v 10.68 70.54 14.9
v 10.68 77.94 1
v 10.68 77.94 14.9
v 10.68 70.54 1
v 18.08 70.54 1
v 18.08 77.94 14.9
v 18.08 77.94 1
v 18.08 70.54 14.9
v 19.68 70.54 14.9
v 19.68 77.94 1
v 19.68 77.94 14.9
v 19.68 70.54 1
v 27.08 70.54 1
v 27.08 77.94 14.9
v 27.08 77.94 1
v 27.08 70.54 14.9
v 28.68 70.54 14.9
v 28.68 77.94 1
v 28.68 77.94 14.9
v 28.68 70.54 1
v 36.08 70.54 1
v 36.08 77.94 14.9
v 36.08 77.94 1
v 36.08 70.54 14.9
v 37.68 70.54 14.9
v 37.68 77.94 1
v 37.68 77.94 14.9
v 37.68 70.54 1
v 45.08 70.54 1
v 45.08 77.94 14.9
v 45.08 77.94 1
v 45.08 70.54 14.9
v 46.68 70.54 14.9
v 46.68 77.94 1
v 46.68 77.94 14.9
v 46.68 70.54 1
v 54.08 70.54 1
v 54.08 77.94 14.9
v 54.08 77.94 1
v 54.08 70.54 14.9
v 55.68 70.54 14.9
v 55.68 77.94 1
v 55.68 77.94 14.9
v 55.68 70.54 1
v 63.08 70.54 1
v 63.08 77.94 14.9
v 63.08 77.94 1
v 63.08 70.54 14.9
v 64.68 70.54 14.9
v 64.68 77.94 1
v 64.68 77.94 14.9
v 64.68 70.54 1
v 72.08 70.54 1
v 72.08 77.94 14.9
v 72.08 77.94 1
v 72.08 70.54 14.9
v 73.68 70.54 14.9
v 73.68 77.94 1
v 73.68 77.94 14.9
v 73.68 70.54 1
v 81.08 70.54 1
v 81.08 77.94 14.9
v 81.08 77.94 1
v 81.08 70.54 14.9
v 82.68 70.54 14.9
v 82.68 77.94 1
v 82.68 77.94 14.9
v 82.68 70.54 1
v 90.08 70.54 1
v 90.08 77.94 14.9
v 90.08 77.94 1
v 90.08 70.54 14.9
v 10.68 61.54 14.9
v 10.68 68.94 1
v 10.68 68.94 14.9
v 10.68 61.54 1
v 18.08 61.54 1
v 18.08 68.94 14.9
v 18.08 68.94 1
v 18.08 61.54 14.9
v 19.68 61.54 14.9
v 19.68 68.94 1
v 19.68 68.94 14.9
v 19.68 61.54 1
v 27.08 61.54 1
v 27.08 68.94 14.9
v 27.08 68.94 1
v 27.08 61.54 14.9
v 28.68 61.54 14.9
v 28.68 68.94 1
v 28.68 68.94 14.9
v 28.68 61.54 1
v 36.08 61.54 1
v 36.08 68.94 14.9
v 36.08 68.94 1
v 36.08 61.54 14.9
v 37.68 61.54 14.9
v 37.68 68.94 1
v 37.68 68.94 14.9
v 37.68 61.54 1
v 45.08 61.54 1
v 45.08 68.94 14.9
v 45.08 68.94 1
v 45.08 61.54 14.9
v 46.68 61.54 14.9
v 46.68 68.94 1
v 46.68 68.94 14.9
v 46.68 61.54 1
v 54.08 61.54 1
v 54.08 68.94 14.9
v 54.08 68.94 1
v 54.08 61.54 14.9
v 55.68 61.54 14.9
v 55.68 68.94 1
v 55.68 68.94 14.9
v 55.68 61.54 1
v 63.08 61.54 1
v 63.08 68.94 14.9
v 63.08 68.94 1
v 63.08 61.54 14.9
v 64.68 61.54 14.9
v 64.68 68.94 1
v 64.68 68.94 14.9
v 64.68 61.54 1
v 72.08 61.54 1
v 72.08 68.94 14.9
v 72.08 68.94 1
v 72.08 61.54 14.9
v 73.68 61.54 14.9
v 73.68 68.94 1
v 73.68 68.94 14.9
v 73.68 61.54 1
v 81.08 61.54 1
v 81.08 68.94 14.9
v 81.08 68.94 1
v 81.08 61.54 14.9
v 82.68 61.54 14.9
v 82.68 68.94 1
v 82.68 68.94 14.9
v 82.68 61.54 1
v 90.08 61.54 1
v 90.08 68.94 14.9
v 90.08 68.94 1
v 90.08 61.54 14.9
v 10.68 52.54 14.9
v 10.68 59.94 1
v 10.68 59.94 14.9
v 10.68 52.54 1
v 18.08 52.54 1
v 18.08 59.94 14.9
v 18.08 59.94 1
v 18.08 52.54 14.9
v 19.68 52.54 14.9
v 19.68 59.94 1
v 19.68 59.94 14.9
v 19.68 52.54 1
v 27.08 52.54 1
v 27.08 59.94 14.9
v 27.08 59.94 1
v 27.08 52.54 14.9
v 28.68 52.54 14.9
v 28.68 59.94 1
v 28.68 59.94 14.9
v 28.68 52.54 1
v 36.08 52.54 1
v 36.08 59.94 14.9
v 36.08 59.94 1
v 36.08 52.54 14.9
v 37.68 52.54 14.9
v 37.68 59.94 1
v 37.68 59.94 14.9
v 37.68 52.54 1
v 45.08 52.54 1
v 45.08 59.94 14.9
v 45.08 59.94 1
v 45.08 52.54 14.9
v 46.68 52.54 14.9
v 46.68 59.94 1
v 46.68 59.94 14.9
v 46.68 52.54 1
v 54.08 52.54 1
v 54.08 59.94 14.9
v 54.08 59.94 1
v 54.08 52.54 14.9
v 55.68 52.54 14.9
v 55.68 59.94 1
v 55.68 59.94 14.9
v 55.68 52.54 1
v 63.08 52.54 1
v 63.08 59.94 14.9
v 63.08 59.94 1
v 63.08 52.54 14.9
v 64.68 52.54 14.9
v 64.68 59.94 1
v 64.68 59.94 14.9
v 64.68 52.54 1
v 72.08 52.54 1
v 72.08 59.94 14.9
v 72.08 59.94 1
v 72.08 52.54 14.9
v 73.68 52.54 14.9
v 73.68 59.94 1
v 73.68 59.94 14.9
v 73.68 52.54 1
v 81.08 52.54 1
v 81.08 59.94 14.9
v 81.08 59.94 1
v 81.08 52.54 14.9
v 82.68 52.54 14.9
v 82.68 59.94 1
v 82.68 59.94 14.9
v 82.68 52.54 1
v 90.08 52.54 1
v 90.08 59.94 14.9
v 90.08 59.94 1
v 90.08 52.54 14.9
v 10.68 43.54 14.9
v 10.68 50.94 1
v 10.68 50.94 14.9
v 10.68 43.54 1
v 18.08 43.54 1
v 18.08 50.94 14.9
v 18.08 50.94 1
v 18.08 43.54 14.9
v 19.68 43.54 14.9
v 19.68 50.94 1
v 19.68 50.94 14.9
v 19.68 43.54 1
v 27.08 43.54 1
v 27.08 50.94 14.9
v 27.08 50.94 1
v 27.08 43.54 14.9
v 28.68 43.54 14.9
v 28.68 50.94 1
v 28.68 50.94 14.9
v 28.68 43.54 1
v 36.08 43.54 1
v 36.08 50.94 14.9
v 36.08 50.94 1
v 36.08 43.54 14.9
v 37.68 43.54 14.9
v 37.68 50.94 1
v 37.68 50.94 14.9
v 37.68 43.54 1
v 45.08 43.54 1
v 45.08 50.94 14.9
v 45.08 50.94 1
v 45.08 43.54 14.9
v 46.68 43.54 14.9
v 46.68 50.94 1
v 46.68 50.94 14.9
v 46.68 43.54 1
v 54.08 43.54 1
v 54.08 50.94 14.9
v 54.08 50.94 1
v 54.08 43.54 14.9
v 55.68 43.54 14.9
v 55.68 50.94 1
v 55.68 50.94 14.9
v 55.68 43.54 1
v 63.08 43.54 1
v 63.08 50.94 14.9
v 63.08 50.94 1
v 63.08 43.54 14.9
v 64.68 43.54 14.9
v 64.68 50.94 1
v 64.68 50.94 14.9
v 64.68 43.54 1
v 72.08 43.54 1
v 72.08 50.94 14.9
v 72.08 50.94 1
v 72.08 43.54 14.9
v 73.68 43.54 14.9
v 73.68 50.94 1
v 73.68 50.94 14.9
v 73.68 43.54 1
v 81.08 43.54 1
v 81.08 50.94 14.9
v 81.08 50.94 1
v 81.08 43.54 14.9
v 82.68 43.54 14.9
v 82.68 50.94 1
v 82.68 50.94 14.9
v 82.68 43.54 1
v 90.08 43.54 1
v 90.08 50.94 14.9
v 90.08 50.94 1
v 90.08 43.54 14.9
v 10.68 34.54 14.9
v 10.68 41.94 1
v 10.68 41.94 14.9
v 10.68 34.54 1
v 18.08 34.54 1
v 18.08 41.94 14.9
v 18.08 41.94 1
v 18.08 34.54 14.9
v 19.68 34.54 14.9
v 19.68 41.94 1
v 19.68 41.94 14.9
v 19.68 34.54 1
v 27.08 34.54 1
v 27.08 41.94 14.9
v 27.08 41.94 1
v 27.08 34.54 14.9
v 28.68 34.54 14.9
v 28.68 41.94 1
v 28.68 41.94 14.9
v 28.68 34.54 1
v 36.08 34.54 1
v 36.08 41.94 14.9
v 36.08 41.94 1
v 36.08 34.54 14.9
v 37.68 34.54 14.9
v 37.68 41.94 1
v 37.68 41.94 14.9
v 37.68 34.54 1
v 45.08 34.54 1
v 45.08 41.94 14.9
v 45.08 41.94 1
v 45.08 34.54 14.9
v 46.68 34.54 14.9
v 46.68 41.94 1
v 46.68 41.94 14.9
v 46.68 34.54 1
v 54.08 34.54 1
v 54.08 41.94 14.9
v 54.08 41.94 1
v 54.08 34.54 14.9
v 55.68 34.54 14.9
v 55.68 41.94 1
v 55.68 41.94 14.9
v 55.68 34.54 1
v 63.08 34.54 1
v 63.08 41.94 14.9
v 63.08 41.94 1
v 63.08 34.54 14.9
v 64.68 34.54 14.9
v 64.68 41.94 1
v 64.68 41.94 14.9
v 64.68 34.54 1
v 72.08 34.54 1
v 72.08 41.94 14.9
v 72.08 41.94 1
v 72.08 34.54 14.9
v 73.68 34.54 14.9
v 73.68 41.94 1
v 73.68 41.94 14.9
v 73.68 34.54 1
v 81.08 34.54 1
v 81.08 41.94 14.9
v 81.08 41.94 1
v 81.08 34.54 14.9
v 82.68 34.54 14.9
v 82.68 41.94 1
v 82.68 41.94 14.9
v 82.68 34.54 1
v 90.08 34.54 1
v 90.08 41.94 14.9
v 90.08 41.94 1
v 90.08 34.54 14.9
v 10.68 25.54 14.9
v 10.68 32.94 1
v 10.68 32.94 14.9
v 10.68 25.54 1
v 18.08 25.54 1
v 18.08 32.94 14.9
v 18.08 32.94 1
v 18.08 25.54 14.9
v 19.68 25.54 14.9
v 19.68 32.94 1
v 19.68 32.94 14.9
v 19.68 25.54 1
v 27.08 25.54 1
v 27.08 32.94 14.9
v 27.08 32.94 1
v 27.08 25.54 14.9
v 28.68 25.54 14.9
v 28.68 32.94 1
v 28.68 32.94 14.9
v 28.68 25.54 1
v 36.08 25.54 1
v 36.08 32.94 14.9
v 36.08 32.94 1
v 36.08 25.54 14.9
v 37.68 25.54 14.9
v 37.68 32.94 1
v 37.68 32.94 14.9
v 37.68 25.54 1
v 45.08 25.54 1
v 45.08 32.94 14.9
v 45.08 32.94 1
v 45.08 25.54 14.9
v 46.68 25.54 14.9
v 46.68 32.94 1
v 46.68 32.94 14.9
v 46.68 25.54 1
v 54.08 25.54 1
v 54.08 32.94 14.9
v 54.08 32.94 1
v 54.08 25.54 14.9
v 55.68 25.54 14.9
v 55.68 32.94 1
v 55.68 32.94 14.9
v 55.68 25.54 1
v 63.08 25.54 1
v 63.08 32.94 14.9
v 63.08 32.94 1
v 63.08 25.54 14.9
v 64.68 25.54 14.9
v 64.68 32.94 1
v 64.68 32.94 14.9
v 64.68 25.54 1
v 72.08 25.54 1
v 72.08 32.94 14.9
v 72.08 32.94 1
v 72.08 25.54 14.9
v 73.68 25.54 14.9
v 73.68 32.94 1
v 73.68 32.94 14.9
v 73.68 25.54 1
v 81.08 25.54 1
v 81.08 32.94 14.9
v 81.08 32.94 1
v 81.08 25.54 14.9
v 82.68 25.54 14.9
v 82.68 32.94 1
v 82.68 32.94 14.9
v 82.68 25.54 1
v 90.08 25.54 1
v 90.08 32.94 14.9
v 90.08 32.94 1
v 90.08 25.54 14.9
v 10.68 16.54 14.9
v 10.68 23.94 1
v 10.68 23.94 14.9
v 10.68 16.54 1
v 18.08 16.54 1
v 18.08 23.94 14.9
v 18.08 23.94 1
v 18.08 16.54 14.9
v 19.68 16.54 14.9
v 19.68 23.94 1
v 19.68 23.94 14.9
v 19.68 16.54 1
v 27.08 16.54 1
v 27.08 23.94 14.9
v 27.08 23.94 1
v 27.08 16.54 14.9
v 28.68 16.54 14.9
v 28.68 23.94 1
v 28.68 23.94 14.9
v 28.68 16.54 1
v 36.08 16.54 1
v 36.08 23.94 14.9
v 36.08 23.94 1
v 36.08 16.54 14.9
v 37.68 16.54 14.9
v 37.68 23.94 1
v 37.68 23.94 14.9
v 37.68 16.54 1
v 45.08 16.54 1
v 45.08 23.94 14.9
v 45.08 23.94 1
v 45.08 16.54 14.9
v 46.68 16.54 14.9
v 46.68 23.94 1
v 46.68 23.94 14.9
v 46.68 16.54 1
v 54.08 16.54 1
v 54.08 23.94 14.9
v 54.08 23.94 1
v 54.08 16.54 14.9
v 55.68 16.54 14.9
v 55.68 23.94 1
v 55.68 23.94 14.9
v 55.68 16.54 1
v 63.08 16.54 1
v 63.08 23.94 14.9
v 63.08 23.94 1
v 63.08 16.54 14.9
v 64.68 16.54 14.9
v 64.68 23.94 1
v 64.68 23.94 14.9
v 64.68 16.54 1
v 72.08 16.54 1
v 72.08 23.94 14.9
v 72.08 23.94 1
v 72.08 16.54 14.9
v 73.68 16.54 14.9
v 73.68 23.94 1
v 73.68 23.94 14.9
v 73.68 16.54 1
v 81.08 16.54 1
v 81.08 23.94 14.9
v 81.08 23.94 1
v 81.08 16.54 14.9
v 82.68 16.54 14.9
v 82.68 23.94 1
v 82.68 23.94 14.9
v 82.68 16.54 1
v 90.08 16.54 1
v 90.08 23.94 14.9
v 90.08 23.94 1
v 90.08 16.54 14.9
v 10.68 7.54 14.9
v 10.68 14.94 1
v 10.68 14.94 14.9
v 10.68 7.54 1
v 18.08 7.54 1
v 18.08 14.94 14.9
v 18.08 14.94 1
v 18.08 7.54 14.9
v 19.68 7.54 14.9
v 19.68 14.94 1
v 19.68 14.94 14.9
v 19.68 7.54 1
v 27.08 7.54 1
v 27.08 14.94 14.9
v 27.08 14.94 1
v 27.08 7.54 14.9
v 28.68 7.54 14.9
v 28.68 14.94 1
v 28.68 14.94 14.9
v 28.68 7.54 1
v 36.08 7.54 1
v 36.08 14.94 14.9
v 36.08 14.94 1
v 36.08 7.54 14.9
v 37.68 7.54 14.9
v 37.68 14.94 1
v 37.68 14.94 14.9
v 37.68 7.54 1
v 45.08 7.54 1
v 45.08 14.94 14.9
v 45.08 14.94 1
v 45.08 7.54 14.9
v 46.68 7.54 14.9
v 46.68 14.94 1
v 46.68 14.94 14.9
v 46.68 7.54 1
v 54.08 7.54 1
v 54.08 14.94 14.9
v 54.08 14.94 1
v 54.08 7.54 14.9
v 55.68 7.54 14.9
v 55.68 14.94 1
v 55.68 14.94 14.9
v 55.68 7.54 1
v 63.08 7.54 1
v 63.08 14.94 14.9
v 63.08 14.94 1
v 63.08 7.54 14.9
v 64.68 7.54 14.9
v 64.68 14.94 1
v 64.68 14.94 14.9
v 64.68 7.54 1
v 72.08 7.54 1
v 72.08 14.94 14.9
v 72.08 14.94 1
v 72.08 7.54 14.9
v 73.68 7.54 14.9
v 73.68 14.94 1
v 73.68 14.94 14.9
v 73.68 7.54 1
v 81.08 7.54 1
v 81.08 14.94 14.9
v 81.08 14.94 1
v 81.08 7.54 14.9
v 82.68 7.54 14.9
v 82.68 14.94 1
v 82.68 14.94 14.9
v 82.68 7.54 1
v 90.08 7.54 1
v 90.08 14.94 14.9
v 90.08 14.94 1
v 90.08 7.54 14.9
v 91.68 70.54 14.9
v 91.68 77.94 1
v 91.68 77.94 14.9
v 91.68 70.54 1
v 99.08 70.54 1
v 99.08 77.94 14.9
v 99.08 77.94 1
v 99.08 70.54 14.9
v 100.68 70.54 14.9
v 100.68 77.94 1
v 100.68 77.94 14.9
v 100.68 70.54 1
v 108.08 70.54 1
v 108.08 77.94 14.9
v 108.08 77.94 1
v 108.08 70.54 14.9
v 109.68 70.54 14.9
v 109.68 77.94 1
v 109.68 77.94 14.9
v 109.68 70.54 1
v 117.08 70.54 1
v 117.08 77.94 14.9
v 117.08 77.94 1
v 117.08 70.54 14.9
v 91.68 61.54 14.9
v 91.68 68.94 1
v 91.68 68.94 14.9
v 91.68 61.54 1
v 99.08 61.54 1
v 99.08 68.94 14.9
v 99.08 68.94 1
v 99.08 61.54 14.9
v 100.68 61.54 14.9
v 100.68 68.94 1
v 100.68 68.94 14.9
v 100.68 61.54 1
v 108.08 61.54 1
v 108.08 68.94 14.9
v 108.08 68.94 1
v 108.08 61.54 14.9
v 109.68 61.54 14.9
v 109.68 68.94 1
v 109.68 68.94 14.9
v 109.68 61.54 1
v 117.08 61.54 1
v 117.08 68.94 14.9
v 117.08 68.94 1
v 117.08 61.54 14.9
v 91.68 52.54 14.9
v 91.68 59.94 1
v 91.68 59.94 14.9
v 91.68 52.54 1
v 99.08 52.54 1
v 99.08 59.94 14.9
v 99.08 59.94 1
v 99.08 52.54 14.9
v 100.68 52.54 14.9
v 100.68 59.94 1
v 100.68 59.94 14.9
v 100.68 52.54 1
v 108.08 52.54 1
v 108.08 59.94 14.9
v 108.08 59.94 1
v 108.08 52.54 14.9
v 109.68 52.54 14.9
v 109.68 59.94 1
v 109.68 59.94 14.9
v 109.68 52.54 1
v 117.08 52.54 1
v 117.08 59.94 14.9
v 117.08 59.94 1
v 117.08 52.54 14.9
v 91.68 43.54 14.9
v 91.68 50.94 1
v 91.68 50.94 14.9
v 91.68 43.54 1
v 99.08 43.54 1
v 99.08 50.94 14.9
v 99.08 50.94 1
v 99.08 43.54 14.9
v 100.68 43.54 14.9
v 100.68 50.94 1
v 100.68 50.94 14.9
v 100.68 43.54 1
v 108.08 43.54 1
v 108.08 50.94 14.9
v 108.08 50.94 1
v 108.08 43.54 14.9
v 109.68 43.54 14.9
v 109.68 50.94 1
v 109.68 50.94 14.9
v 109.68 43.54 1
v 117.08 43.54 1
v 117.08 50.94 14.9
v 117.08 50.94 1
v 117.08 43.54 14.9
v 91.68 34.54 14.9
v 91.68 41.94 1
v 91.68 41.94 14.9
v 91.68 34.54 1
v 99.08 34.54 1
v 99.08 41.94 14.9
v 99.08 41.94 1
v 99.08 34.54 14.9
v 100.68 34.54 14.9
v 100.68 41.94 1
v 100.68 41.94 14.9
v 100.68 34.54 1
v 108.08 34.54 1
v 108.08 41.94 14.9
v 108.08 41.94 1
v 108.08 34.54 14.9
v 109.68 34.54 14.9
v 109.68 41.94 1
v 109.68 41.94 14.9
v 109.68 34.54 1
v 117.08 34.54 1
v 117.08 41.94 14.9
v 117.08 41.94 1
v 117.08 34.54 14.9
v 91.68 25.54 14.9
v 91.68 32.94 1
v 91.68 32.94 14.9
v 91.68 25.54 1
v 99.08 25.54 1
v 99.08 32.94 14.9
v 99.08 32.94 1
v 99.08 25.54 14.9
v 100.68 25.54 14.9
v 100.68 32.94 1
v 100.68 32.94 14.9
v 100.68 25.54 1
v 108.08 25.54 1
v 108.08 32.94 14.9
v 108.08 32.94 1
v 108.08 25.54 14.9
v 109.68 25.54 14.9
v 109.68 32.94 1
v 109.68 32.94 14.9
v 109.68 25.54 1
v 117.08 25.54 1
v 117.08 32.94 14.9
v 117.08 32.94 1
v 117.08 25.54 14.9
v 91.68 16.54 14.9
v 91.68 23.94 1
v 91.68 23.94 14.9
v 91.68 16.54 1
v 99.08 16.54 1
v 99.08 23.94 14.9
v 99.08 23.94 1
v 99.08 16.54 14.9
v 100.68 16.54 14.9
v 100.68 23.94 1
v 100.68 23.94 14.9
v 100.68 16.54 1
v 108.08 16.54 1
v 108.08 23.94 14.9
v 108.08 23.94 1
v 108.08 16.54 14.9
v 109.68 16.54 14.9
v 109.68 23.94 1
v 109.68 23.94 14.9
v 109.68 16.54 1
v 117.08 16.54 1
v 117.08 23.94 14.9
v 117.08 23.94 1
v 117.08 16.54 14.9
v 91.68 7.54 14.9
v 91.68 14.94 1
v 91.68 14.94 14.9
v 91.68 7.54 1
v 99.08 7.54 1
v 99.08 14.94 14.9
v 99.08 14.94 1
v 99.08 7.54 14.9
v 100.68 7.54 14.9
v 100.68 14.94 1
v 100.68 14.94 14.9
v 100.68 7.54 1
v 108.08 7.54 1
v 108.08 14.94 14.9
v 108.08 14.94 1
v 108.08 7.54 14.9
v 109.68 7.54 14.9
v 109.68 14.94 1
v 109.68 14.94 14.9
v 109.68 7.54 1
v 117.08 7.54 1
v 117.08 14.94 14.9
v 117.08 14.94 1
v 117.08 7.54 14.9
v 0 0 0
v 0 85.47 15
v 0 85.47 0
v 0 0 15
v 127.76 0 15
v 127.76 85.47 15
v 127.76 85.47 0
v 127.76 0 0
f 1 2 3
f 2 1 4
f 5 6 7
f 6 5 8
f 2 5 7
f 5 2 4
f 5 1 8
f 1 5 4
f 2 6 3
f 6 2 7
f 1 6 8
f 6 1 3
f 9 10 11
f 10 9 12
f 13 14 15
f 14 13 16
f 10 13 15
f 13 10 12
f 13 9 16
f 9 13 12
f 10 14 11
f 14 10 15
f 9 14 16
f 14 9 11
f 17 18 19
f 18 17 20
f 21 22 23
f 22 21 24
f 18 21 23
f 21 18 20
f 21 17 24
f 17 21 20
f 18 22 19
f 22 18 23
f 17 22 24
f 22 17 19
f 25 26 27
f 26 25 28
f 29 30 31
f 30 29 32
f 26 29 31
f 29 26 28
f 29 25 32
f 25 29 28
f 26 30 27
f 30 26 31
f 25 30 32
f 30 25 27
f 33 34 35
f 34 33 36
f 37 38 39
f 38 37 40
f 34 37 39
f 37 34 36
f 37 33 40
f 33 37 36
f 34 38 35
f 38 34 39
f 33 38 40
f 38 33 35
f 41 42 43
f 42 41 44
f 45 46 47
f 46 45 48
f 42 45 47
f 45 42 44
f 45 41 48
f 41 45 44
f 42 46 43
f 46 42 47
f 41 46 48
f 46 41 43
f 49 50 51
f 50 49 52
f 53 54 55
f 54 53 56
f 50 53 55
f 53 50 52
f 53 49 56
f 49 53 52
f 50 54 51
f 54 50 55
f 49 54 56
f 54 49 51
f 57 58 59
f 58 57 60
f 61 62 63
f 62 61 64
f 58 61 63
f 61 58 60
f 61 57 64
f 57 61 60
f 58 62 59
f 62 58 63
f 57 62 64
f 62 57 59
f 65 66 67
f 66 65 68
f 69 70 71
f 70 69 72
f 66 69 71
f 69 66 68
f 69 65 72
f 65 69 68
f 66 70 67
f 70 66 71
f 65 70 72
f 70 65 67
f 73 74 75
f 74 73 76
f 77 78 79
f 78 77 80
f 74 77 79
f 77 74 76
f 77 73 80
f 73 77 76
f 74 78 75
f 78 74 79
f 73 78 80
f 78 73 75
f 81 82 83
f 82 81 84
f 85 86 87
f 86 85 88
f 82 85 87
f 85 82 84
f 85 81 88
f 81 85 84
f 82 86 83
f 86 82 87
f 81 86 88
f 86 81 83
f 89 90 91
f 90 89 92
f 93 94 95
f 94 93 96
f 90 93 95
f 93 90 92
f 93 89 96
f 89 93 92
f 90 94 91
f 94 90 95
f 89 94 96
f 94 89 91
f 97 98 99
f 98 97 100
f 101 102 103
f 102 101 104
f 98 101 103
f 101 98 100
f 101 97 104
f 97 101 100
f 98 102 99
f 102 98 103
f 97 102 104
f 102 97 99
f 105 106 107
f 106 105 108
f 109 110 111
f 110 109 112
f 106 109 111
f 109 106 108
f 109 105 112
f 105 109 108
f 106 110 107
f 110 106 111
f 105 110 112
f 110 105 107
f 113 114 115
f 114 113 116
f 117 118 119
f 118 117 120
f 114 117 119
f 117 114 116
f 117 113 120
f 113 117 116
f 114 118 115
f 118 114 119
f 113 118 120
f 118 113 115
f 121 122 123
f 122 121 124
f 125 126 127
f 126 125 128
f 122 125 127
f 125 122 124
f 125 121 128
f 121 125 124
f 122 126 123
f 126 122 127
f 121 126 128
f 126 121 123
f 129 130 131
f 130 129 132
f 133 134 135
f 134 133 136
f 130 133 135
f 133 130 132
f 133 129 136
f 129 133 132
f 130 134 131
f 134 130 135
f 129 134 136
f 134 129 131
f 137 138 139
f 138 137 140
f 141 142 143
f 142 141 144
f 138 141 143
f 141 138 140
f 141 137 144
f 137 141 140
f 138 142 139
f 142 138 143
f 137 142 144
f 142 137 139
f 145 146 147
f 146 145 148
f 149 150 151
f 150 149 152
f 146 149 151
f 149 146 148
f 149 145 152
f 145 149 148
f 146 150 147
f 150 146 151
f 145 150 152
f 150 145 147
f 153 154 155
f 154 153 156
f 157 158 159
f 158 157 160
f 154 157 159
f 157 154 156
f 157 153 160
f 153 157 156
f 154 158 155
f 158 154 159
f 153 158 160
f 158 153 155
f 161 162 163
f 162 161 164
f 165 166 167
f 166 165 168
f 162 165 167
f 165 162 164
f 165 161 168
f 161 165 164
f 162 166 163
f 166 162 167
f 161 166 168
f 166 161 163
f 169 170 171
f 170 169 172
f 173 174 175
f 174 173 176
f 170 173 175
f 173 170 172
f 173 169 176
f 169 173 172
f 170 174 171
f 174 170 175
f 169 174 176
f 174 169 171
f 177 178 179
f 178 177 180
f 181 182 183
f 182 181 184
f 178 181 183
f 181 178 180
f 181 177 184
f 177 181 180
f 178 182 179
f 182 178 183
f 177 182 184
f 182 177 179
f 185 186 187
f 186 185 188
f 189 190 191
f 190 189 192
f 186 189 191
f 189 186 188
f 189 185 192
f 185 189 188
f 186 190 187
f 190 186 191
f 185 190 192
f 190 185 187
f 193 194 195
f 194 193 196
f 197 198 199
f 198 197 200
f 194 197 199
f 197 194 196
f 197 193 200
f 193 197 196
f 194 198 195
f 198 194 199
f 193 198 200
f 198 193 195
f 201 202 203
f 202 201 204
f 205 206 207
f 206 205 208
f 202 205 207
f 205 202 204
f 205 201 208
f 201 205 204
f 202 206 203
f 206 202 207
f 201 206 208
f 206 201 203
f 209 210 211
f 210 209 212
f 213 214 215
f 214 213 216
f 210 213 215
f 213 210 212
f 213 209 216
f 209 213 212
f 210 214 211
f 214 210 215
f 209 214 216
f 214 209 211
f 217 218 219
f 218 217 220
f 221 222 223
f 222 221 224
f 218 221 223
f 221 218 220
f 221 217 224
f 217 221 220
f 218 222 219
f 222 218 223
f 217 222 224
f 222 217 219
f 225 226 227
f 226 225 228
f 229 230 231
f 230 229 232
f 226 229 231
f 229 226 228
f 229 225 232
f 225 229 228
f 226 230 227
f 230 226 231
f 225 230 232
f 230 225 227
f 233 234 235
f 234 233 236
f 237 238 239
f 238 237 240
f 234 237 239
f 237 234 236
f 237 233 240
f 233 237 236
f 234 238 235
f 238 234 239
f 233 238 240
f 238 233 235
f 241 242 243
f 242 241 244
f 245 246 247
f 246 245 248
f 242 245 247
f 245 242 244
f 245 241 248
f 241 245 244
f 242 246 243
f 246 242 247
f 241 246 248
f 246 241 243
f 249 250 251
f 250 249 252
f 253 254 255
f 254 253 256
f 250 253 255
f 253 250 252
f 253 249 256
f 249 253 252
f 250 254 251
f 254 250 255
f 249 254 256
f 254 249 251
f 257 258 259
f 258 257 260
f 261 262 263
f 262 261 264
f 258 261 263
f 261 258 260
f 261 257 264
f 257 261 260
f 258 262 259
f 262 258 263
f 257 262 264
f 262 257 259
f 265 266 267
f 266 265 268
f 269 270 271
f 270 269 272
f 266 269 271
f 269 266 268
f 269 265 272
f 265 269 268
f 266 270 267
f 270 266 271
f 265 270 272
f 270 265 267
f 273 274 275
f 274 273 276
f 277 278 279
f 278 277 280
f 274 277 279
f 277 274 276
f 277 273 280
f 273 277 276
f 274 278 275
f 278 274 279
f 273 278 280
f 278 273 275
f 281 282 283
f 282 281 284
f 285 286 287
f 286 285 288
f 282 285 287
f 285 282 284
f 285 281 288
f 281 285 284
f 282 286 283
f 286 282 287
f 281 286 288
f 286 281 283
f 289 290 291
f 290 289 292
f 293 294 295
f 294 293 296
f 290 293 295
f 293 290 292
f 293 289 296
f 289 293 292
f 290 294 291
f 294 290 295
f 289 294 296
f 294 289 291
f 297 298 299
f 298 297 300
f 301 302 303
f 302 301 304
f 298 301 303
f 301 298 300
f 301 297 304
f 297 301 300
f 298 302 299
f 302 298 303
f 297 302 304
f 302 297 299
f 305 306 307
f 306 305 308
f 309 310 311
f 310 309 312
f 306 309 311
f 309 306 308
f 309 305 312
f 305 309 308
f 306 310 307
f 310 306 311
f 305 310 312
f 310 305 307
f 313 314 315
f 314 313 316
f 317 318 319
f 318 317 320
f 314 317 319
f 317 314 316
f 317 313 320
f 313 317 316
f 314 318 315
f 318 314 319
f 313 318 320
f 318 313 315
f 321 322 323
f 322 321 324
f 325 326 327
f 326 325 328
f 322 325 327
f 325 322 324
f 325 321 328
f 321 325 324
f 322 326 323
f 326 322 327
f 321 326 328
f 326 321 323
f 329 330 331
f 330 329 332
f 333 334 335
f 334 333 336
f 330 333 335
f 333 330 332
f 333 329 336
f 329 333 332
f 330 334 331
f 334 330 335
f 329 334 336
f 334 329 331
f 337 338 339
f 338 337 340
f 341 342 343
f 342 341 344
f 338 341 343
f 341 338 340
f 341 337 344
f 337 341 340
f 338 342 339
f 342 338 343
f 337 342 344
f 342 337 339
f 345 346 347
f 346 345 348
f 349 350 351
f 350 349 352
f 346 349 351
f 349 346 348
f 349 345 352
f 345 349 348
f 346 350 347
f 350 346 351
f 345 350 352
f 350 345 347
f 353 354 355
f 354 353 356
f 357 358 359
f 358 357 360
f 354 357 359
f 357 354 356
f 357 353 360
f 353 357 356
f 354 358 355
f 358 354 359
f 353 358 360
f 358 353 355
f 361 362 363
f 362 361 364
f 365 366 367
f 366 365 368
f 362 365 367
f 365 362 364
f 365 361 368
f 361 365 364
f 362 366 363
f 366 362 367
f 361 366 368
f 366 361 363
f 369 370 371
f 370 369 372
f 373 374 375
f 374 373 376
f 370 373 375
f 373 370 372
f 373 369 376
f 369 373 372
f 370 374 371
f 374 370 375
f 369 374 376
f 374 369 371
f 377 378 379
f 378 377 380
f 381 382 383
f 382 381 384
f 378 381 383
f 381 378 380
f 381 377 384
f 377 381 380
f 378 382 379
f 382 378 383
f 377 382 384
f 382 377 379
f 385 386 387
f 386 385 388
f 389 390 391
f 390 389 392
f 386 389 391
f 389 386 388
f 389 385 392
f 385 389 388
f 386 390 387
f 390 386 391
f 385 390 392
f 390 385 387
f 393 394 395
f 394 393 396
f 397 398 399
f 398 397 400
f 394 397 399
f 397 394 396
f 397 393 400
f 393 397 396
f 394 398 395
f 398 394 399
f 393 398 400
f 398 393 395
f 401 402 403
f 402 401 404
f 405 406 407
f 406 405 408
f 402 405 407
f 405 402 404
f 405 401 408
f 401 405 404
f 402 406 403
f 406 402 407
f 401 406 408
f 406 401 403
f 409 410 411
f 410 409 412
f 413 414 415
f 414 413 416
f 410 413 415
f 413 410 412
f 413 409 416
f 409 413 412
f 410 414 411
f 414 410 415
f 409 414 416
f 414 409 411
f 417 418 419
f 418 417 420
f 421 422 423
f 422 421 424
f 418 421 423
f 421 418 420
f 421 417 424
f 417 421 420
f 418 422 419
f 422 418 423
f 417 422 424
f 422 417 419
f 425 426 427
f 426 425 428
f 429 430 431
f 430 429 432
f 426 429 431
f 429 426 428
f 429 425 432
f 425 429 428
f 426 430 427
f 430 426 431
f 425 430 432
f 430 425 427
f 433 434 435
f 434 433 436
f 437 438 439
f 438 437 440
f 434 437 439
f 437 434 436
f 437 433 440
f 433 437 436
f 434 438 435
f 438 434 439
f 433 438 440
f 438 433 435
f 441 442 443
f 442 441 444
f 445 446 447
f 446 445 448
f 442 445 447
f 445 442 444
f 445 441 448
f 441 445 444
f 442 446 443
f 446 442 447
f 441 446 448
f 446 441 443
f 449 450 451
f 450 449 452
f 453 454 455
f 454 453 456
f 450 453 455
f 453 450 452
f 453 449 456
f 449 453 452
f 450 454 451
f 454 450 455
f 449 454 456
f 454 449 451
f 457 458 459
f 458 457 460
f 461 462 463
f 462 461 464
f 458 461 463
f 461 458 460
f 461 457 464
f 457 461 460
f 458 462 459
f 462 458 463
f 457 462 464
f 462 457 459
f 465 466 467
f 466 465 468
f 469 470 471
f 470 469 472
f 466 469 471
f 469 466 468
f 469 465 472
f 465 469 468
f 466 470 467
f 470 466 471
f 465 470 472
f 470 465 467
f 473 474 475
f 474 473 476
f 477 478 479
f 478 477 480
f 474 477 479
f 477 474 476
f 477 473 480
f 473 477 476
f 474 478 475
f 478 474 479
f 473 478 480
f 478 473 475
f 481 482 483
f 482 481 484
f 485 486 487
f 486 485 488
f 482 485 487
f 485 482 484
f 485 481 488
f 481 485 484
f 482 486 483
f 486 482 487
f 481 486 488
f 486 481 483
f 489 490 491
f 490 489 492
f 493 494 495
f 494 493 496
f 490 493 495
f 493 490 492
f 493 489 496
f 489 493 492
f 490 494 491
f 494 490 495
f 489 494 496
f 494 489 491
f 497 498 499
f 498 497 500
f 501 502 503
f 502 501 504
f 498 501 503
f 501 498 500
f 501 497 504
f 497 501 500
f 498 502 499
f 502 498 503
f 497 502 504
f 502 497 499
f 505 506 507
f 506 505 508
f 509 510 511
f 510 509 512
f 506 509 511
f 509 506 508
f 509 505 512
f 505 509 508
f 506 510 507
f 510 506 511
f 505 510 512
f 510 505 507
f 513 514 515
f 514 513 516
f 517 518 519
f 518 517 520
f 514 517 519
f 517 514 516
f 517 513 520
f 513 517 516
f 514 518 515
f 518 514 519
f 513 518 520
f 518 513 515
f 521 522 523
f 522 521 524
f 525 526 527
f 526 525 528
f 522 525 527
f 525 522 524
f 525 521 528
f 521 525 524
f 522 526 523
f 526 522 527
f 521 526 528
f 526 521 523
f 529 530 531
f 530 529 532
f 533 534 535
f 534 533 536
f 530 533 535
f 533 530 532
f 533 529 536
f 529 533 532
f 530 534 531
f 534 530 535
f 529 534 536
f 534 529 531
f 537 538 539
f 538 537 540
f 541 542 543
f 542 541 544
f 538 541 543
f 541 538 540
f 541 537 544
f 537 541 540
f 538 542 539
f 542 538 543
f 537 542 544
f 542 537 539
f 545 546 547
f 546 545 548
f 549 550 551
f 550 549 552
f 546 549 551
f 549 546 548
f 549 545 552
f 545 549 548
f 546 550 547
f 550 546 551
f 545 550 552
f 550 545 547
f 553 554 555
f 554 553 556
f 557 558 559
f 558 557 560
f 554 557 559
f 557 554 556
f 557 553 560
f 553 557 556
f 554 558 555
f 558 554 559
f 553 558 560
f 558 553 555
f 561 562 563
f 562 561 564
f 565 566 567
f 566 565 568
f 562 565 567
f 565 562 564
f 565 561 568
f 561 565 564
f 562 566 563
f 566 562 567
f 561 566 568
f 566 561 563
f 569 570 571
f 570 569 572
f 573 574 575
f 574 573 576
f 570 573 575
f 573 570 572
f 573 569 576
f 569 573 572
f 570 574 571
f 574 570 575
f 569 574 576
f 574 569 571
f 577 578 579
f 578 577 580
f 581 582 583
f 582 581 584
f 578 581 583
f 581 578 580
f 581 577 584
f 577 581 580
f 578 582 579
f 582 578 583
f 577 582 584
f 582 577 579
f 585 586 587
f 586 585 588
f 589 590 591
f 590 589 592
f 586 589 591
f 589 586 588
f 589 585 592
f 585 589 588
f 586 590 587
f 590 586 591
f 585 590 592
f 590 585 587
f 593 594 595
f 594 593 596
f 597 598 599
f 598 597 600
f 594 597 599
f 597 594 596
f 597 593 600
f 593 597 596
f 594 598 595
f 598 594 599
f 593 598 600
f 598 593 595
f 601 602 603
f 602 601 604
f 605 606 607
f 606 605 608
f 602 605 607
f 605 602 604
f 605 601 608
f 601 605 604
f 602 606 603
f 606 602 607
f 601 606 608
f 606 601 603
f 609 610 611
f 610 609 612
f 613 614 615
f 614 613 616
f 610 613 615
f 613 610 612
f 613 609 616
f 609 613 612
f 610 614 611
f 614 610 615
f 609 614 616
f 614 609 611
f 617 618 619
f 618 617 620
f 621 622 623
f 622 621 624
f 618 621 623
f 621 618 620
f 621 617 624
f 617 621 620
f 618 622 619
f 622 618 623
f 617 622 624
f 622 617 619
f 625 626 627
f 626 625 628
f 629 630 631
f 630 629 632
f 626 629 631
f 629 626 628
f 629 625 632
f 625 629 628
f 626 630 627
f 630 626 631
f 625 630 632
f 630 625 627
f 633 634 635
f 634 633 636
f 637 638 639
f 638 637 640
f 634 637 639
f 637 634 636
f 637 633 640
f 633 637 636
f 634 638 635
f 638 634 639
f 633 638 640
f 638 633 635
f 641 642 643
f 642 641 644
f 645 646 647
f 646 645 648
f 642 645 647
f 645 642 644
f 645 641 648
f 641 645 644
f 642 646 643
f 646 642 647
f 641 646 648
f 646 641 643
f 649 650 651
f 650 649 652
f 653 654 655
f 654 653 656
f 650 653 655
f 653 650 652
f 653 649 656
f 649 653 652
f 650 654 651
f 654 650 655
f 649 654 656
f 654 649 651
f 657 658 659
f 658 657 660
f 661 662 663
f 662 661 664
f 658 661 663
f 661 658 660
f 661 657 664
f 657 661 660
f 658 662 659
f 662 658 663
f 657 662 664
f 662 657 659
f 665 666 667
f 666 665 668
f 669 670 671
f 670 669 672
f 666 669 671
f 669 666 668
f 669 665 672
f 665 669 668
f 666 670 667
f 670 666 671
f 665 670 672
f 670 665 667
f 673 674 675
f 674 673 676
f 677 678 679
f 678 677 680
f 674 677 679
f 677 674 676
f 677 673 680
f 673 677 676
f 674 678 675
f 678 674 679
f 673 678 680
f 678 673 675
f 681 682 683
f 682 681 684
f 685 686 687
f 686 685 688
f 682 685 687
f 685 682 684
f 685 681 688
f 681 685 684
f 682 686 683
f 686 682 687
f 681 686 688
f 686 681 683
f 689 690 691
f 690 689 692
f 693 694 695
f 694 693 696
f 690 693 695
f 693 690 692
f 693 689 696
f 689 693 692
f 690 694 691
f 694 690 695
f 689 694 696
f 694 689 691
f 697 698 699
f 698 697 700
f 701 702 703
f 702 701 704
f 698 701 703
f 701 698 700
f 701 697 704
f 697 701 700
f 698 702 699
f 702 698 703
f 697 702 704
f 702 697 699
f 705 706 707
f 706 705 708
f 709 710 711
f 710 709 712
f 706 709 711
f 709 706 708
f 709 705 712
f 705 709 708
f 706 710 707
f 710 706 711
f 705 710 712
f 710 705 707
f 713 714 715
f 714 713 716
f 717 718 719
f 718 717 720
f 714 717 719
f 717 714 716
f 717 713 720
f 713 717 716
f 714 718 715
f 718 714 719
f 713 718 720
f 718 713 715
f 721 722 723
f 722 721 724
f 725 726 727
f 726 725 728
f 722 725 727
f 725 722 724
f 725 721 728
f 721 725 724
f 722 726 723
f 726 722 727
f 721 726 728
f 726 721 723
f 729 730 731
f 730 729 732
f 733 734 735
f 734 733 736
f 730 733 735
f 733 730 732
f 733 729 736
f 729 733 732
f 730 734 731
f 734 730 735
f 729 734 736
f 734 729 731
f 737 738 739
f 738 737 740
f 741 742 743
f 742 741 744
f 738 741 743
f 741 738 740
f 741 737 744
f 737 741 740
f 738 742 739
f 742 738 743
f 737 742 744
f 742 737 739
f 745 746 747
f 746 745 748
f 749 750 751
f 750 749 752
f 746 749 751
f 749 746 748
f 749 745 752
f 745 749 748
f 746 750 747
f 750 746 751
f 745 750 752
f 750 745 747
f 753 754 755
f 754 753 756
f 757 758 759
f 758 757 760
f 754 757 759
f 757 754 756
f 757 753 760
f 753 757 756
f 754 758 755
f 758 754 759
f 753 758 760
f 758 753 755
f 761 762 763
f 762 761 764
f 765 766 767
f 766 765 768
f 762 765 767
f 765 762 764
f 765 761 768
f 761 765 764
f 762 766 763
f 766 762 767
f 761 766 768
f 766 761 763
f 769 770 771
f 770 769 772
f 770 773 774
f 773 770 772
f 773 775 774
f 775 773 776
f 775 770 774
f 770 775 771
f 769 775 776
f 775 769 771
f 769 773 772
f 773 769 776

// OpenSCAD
// ibidi 96 Square Well Flat Bottom Plate 300 µL
// loadName: ibidi_96_square_well_plate_300ul
// Auto-generated by labware_to_stl.py from Opentrons V2 labware definition

$fn = 8;

difference() {
    // ── Labware body ──────────────────────────────────────────────
    cube([127.7600, 85.4700, 15.0000]);

    // ── Well cutouts ──────────────────────────────────────────────
    // Well A1
    translate([14.3800, 74.2400, 1.0000]) union() {
        translate([-3.7000, -3.7000, 0.0000])
            cube([7.4000, 7.4000, 12.9000]);
        translate([-3.7000, -3.7000, 12.9000])
            cube([7.4000, 7.4000, 1]);
    }
    // Well A2
    translate([23.3800, 74.2400, 1.0000]) union() {
        translate([-3.7000, -3.7000, 0.0000])
            cube([7.4000, 7.4000, 12.9000]);
        translate([-3.7000, -3.7000, 12.9000])
            cube([7.4000, 7.4000, 1]);
    }
    // Well A3
    translate([32.3800, 74.2400, 1.0000]) union() {
        translate([-3.7000, -3.7000, 0.0000])
            cube([7.4000, 7.4000, 12.9000]);
        translate([-3.7000, -3.7000, 12.9000])
            cube([7.4000, 7.4000, 1]);
    }
    // Well A4
    translate([41.3800, 74.2400, 1.0000]) union() {
        translate([-3.7000, -3.7000, 0.0000])
            cube([7.4000, 7.4000, 12.9000]);
        translate([-3.7000, -3.7000, 12.9000])
            cube([7.4000, 7.4000, 1]);
    }
    // Well A5
    translate([50.3800, 74.2400, 1.0000]) union() {
        translate([-3.7000, -3.7000, 0.0000])
            cube([7.4000, 7.4000, 12.9000]);
        translate([-3.7000, -3.7000, 12.9000])
            cube([7.4000, 7.4000, 1]);
    }
    // Well A6
    translate([59.3800, 74.2400, 1.0000]) union() {
        translate([-3.7000, -3.7000, 0.0000])
            cube([7.4000, 7.4000, 12.9000]);
        translate([-3.7000, -3.7000, 12.9000])
            cube([7.4000, 7.4000, 1]);
    }
    // Well A7
    translate([68.3800, 74.2400, 1.0000]) union() {
        translate([-3.7000, -3.7000, 0.0000])
            cube([7.4000, 7.4000, 12.9000]);
        translate([-3.7000, -3.7000, 12.9000])
            cube([7.4000, 7.4000, 1]);
    }
    // Well A8
    translate([77.3800, 74.2400, 1.0000]) union() {
        translate([-3.7000, -3.7000, 0.0000])
            cube([7.4000, 7.4000, 12.9000]);
        translate([-3.7000, -3.7000, 12.9000])
            cube([7.4000, 7.4000, 1]);
    }
    // Well A9
    translate([86.3800, 74.2400, 1.0000]) union() {
        translate([-3.7000, -3.7000, 0.0000])
            cube([7.4000, 7.4000, 12.9000]);
        translate([-3.7000, -3.7000, 12.9000])
            cube([7.4000, 7.4000, 1]);
    }
    // Well B1
    translate([14.3800, 65.2400, 1.0000]) union() {
        translate([-3.7000, -3.7000, 0.0000])
            cube([7.4000, 7.4000, 12.9000]);
        translate([-3.7000, -3.7000, 12.9000])
            cube([7.4000, 7.4000, 1]);
    }
    // Well B2
    translate([23.3800, 65.2400, 1.0000]) union() {
        translate([-3.7000, -3.7000, 0.0000])
            cube([7.4000, 7.4000, 12.9000]);
        translate([-3.7000, -3.7000, 12.9000])
            cube([7.4000, 7.4000, 1]);
    }
    // Well B3
    translate([32.3800, 65.2400, 1.0000]) union() {
        translate([-3.7000, -3.7000, 0.0000])
            cube([7.4000, 7.4000, 12.9000]);
        translate([-3.7000, -3.7000, 12.9000])
            cube([7.4000, 7.4000, 1]);
    }
    // Well B4
    translate([41.3800, 65.2400, 1.0000]) union() {
        translate([-3.7000, -3.7000, 0.0000])
            cube([7.4000, 7.4000, 12.9000]);
        translate([-3.7000, -3.7000, 12.9000])
            cube([7.4000, 7.4000, 1]);
    }
    // Well B5
    translate([50.3800, 65.2400, 1.0000]) union() {
        translate([-3.7000, -3.7000, 0.0000])
            cube([7.4000, 7.4000, 12.9000]);
        translate([-3.7000, -3.7000, 12.9000])
            cube([7.4000, 7.4000, 1]);
    }
    // Well B6
    translate([59.3800, 65.2400, 1.0000]) union() {
        translate([-3.7000, -3.7000, 0.0000])
            cube([7.4000, 7.4000, 12.9000]);
        translate([-3.7000, -3.7000, 12.9000])
            cube([7.4000, 7.4000, 1]);
    }
    // Well B7
    translate([68.3800, 65.2400, 1.0000]) union() {
        translate([-3.7000, -3.7000, 0.0000])
            cube([7.4000, 7.4000, 12.9000]);
        translate([-3.7000, -3.7000, 12.9000])
            cube([7.4000, 7.4000, 1]);
    }
    // Well B8
    translate([77.3800, 65.2400, 1.0000]) union() {
        translate([-3.7000, -3.7000, 0.0000])
            cube([7.4000, 7.4000, 12.9000]);
        translate([-3.7000, -3.7000, 12.9000])
            cube([7.4000, 7.4000, 1]);
    }
    // Well B9
    translate([86.3800, 65.2400, 1.0000]) union() {
        translate([-3.7000, -3.7000, 0.0000])
            cube([7.4000, 7.4000, 12.9000]);
        translate([-3.7000, -3.7000, 12.9000])
            cube([7.4000, 7.4000, 1]);
    }
    // Well C1
    translate([14.3800, 56.2400, 1.0000]) union() {
        translate([-3.7000, -3.7000, 0.0000])
            cube([7.4000, 7.4000, 12.9000]);
        translate([-3.7000, -3.7000, 12.9000])
            cube([7.4000, 7.4000, 1]);
    }
    // Well C2
    translate([23.3800, 56.2400, 1.0000]) union() {
        translate([-3.7000, -3.7000, 0.0000])
            cube([7.4000, 7.4000, 12.9000]);
        translate([-3.7000, -3.7000, 12.9000])
            cube([7.4000, 7.4000, 1]);
    }
    // Well C3
    translate([32.3800, 56.2400, 1.0000]) union() {
        translate([-3.7000, -3.7000, 0.0000])
            cube([7.4000, 7.4000, 12.9000]);
        translate([-3.7000, -3.7000, 12.9000])
            cube([7.4000, 7.4000, 1]);
    }
    // Well C4
    translate([41.3800, 56.2400, 1.0000]) union() {
        translate([-3.7000, -3.7000, 0.0000])
            cube([7.4000, 7.4000, 12.9000]);
        translate([-3.7000, -3.7000, 12.9000])
            cube([7.4000, 7.4000, 1]);
    }
    // Well C5
    translate([50.3800, 56.2400, 1.0000]) union() {
        translate([-3.7000, -3.7000, 0.0000])
            cube([7.4000, 7.4000, 12.9000]);
        translate([-3.7000, -3.7000, 12.9000])
            cube([7.4000, 7.4000, 1]);
    }
    // Well C6
    translate([59.3800, 56.2400, 1.0000]) union() {
        translate([-3.7000, -3.7000, 0.0000])
            cube([7.4000, 7.4000, 12.9000]);
        translate([-3.7000, -3.7000, 12.9000])
            cube([7.4000, 7.4000, 1]);
    }
    // Well C7
    translate([68.3800, 56.2400, 1.0000]) union() {
        translate([-3.7000, -3.7000, 0.0000])
            cube([7.4000, 7.4000, 12.9000]);
        translate([-3.7000, -3.7000, 12.9000])
            cube([7.4000, 7.4000, 1]);
    }
    // Well C8
    translate([77.3800, 56.2400, 1.0000]) union() {
        translate([-3.7000, -3.7000, 0.0000])
            cube([7.4000, 7.4000, 12.9000]);
        translate([-3.7000, -3.7000, 12.9000])
            cube([7.4000, 7.4000, 1]);
    }
    // Well C9
    translate([86.3800, 56.2400, 1.0000]) union() {
        translate([-3.7000, -3.7000, 0.0000])
            cube([7.4000, 7.4000, 12.9000]);
        translate([-3.7000, -3.7000, 12.9000])
            cube([7.4000, 7.4000, 1]);
    }
    // Well D1
    translate([14.3800, 47.2400, 1.0000]) union() {
        translate([-3.7000, -3.7000, 0.0000])
            cube([7.4000, 7.4000, 12.9000]);
        translate([-3.7000, -3.7000, 12.9000])
            cube([7.4000, 7.4000, 1]);
    }
    // Well D2
    translate([23.3800, 47.2400, 1.0000]) union() {
        translate([-3.7000, -3.7000, 0.0000])
            cube([7.4000, 7.4000, 12.9000]);
        translate([-3.7000, -3.7000, 12.9000])
            cube([7.4000, 7.4000, 1]);
    }
    // Well D3
    translate([32.3800, 47.2400, 1.0000]) union() {
        translate([-3.7000, -3.7000, 0.0000])
            cube([7.4000, 7.4000, 12.9000]);
        translate([-3.7000, -3.7000, 12.9000])
            cube([7.4000, 7.4000, 1]);
    }
    // Well D4
    translate([41.3800, 47.2400, 1.0000]) union() {
        translate([-3.7000, -3.7000, 0.0000])
            cube([7.4000, 7.4000, 12.9000]);
        translate([-3.7000, -3.7000, 12.9000])
            cube([7.4000, 7.4000, 1]);
    }
    // Well D5
    translate([50.3800, 47.2400, 1.0000]) union() {
        translate([-3.7000, -3.7000, 0.0000])
            cube([7.4000, 7.4000, 12.9000]);
        translate([-3.7000, -3.7000, 12.9000])
            cube([7.4000, 7.4000, 1]);
    }
    // Well D6
    translate([59.3800, 47.2400, 1.0000]) union() {
        translate([-3.7000, -3.7000, 0.0000])
            cube([7.4000, 7.4000, 12.9000]);
        translate([-3.7000, -3.7000, 12.9000])
            cube([7.4000, 7.4000, 1]);
    }
    // Well D7
    translate([68.3800, 47.2400, 1.0000]) union() {
        translate([-3.7000, -3.7000, 0.0000])
            cube([7.4000, 7.4000, 12.9000]);
        translate([-3.7000, -3.7000, 12.9000])
            cube([7.4000, 7.4000, 1]);
    }
    // Well D8
    translate([77.3800, 47.2400, 1.0000]) union() {
        translate([-3.7000, -3.7000, 0.0000])
            cube([7.4000, 7.4000, 12.9000]);
        translate([-3.7000, -3.7000, 12.9000])
            cube([7.4000, 7.4000, 1]);
    }
    // Well D9
    translate([86.3800, 47.2400, 1.0000]) union() {
        translate([-3.7000, -3.7000, 0.0000])
            cube([7.4000, 7.4000, 12.9000]);
        translate([-3.7000, -3.7000, 12.9000])
            cube([7.4000, 7.4000, 1]);
    }
    // Well E1
    translate([14.3800, 38.2400, 1.0000]) union() {
        translate([-3.7000, -3.7000, 0.0000])
            cube([7.4000, 7.4000, 12.9000]);
        translate([-3.7000, -3.7000, 12.9000])
            cube([7.4000, 7.4000, 1]);
    }
    // Well E2
    translate([23.3800, 38.2400, 1.0000]) union() {
        translate([-3.7000, -3.7000, 0.0000])
            cube([7.4000, 7.4000, 12.9000]);
        translate([-3.7000, -3.7000, 12.9000])
            cube([7.4000, 7.4000, 1]);
    }
    // Well E3
    translate([32.3800, 38.2400, 1.0000]) union() {
        translate([-3.7000, -3.7000, 0.0000])
            cube([7.4000, 7.4000, 12.9000]);
        translate([-3.7000, -3.7000, 12.9000])
            cube([7.4000, 7.4000, 1]);
    }
    // Well E4
    translate([41.3800, 38.2400, 1.0000]) union() {
        translate([-3.7000, -3.7000, 0.0000])
            cube([7.4000, 7.4000, 12.9000]);
        translate([-3.7000, -3.7000, 12.9000])
            cube([7.4000, 7.4000, 1]);
    }
    // Well E5
    translate([50.3800, 38.2400, 1.0000]) union() {
        translate([-3.7000, -3.7000, 0.0000])
            cube([7.4000, 7.4000, 12.9000]);
        translate([-3.7000, -3.7000, 12.9000])
            cube([7.4000, 7.4000, 1]);
    }
    // Well E6
    translate([59.3800, 38.2400, 1.0000]) union() {
        translate([-3.7000, -3.7000, 0.0000])
            cube([7.4000, 7.4000, 12.9000]);
        translate([-3.7000, -3.7000, 12.9000])
            cube([7.4000, 7.4000, 1]);
    }
    // Well E7
    translate([68.3800, 38.2400, 1.0000]) union() {
        translate([-3.7000, -3.7000, 0.0000])
            cube([7.4000, 7.4000, 12.9000]);
        translate([-3.7000, -3.7000, 12.9000])
            cube([7.4000, 7.4000, 1]);
    }
    // Well E8
    translate([77.3800, 38.2400, 1.0000]) union() {
        translate([-3.7000, -3.7000, 0.0000])
            cube([7.4000, 7.4000, 12.9000]);
        translate([-3.7000, -3.7000, 12.9000])
            cube([7.4000, 7.4000, 1]);
    }
    // Well E9
    translate([86.3800, 38.2400, 1.0000]) union() {
        translate([-3.7000, -3.7000, 0.0000])
            cube([7.4000, 7.4000, 12.9000]);
        translate([-3.7000, -3.7000, 12.9000])
            cube([7.4000, 7.4000, 1]);
    }
    // Well F1
    translate([14.3800, 29.2400, 1.0000]) union() {
        translate([-3.7000, -3.7000, 0.0000])
            cube([7.4000, 7.4000, 12.9000]);
        translate([-3.7000, -3.7000, 12.9000])
            cube([7.4000, 7.4000, 1]);
    }
    // Well F2
    translate([23.3800, 29.2400, 1.0000]) union() {
        translate([-3.7000, -3.7000, 0.0000])
            cube([7.4000, 7.4000, 12.9000]);
        translate([-3.7000, -3.7000, 12.9000])
            cube([7.4000, 7.4000, 1]);
    }
    // Well F3
    translate([32.3800, 29.2400, 1.0000]) union() {
        translate([-3.7000, -3.7000, 0.0000])
            cube([7.4000, 7.4000, 12.9000]);
        translate([-3.7000, -3.7000, 12.9000])
            cube([7.4000, 7.4000, 1]);
    }
    // Well F4
    translate([41.3800, 29.2400, 1.0000]) union() {
        translate([-3.7000, -3.7000, 0.0000])
            cube([7.4000, 7.4000, 12.9000]);
        translate([-3.7000, -3.7000, 12.9000])
            cube([7.4000, 7.4000, 1]);
    }
    // Well F5
    translate([50.3800, 29.2400, 1.0000]) union() {
        translate([-3.7000, -3.7000, 0.0000])
            cube([7.4000, 7.4000, 12.9000]);
        translate([-3.7000, -3.7000, 12.9000])
            cube([7.4000, 7.4000, 1]);
    }
    // Well F6
    translate([59.3800, 29.2400, 1.0000]) union() {
        translate([-3.7000, -3.7000, 0.0000])
            cube([7.4000, 7.4000, 12.9000]);
        translate([-3.7000, -3.7000, 12.9000])
            cube([7.4000, 7.4000, 1]);
    }
    // Well F7
    translate([68.3800, 29.2400, 1.0000]) union() {
        translate([-3.7000, -3.7000, 0.0000])
            cube([7.4000, 7.4000, 12.9000]);
        translate([-3.7000, -3.7000, 12.9000])
            cube([7.4000, 7.4000, 1]);
    }
    // Well F8
    translate([77.3800, 29.2400, 1.0000]) union() {
        translate([-3.7000, -3.7000, 0.0000])
            cube([7.4000, 7.4000, 12.9000]);
        translate([-3.7000, -3.7000, 12.9000])
            cube([7.4000, 7.4000, 1]);
    }
    // Well F9
    translate([86.3800, 29.2400, 1.0000]) union() {
        translate([-3.7000, -3.7000, 0.0000])
            cube([7.4000, 7.4000, 12.9000]);
        translate([-3.7000, -3.7000, 12.9000])
            cube([7.4000, 7.4000, 1]);
    }
    // Well G1
    translate([14.3800, 20.2400, 1.0000]) union() {
        translate([-3.7000, -3.7000, 0.0000])
            cube([7.4000, 7.4000, 12.9000]);
        translate([-3.7000, -3.7000, 12.9000])
            cube([7.4000, 7.4000, 1]);
    }
    // Well G2
    translate([23.3800, 20.2400, 1.0000]) union() {
        translate([-3.7000, -3.7000, 0.0000])
            cube([7.4000, 7.4000, 12.9000]);
        translate([-3.7000, -3.7000, 12.9000])
            cube([7.4000, 7.4000, 1]);
    }
    // Well G3
    translate([32.3800, 20.2400, 1.0000]) union() {
        translate([-3.7000, -3.7000, 0.0000])
            cube([7.4000, 7.4000, 12.9000]);
        translate([-3.7000, -3.7000, 12.9000])
            cube([7.4000, 7.4000, 1]);
    }
    // Well G4
    translate([41.3800, 20.2400, 1.0000]) union() {
        translate([-3.7000, -3.7000, 0.0000])
            cube([7.4000, 7.4000, 12.9000]);
        translate([-3.7000, -3.7000, 12.9000])
            cube([7.4000, 7.4000, 1]);
    }
    // Well G5
    translate([50.3800, 20.2400, 1.0000]) union() {
        translate([-3.7000, -3.7000, 0.0000])
            cube([7.4000, 7.4000, 12.9000]);
        translate([-3.7000, -3.7000, 12.9000])
            cube([7.4000, 7.4000, 1]);
    }
    // Well G6
    translate([59.3800, 20.2400, 1.0000]) union() {
        translate([-3.7000, -3.7000, 0.0000])
            cube([7.4000, 7.4000, 12.9000]);
        translate([-3.7000, -3.7000, 12.9000])
            cube([7.4000, 7.4000, 1]);
    }
    // Well G7
    translate([68.3800, 20.2400, 1.0000]) union() {
        translate([-3.7000, -3.7000, 0.0000])
            cube([7.4000, 7.4000, 12.9000]);
        translate([-3.7000, -3.7000, 12.9000])
            cube([7.4000, 7.4000, 1]);
    }
    // Well G8
    translate([77.3800, 20.2400, 1.0000]) union() {
        translate([-3.7000, -3.7000, 0.0000])
            cube([7.4000, 7.4000, 12.9000]);
        translate([-3.7000, -3.7000, 12.9000])
            cube([7.4000, 7.4000, 1]);
    }
    // Well G9
    translate([86.3800, 20.2400, 1.0000]) union() {
        translate([-3.7000, -3.7000, 0.0000])
            cube([7.4000, 7.4000, 12.9000]);
        translate([-3.7000, -3.7000, 12.9000])
            cube([7.4000, 7.4000, 1]);
    }
    // Well H1
    translate([14.3800, 11.2400, 1.0000]) union() {
        translate([-3.7000, -3.7000, 0.0000])
            cube([7.4000, 7.4000, 12.9000]);
        translate([-3.7000, -3.7000, 12.9000])
            cube([7.4000, 7.4000, 1]);
    }
    // Well H2
    translate([23.3800, 11.2400, 1.0000]) union() {
        translate([-3.7000, -3.7000, 0.0000])
            cube([7.4000, 7.4000, 12.9000]);
        translate([-3.7000, -3.7000, 12.9000])
            cube([7.4000, 7.4000, 1]);
    }
    // Well H3
    translate([32.3800, 11.2400, 1.0000]) union() {
        translate([-3.7000, -3.7000, 0.0000])
            cube([7.4000, 7.4000, 12.9000]);
        translate([-3.7000, -3.7000, 12.9000])
            cube([7.4000, 7.4000, 1]);
    }
    // Well H4
    translate([41.3800, 11.2400, 1.0000]) union() {
        translate([-3.7000, -3.7000, 0.0000])
            cube([7.4000, 7.4000, 12.9000]);
        translate([-3.7000, -3.7000, 12.9000])
            cube([7.4000, 7.4000, 1]);
    }
    // Well H5
    translate([50.3800, 11.2400, 1.0000]) union() {
        translate([-3.7000, -3.7000, 0.0000])
            cube([7.4000, 7.4000, 12.9000]);
        translate([-3.7000, -3.7000, 12.9000])
            cube([7.4000, 7.4000, 1]);
    }
    // Well H6
    translate([59.3800, 11.2400, 1.0000]) union() {
        translate([-3.7000, -3.7000, 0.0000])
            cube([7.4000, 7.4000, 12.9000]);
        translate([-3.7000, -3.7000, 12.9000])
            cube([7.4000, 7.4000, 1]);
    }
    // Well H7
    translate([68.3800, 11.2400, 1.0000]) union() {
        translate([-3.7000, -3.7000, 0.0000])
            cube([7.4000, 7.4000, 12.9000]);
        translate([-3.7000, -3.7000, 12.9000])
            cube([7.4000, 7.4000, 1]);
    }
    // Well H8
    translate([77.3800, 11.2400, 1.0000]) union() {
        translate([-3.7000, -3.7000, 0.0000])
            cube([7.4000, 7.4000, 12.9000]);
        translate([-3.7000, -3.7000, 12.9000])
            cube([7.4000, 7.4000, 1]);
    }
    // Well H9
    translate([86.3800, 11.2400, 1.0000]) union() {
        translate([-3.7000, -3.7000, 0.0000])
            cube([7.4000, 7.4000, 12.9000]);
        translate([-3.7000, -3.7000, 12.9000])
            cube([7.4000, 7.4000, 1]);
    }
    // Well A10
    translate([95.3800, 74.2400, 1.0000]) union() {
        translate([-3.7000, -3.7000, 0.0000])
            cube([7.4000, 7.4000, 12.9000]);
        translate([-3.7000, -3.7000, 12.9000])
            cube([7.4000, 7.4000, 1]);
    }
    // Well A11
    translate([104.3800, 74.2400, 1.0000]) union() {
        translate([-3.7000, -3.7000, 0.0000])
            cube([7.4000, 7.4000, 12.9000]);
        translate([-3.7000, -3.7000, 12.9000])
            cube([7.4000, 7.4000, 1]);
    }
    // Well A12
    translate([113.3800, 74.2400, 1.0000]) union() {
        translate([-3.7000, -3.7000, 0.0000])
            cube([7.4000, 7.4000, 12.9000]);
        translate([-3.7000, -3.7000, 12.9000])
            cube([7.4000, 7.4000, 1]);
    }
    // Well B10
    translate([95.3800, 65.2400, 1.0000]) union() {
        translate([-3.7000, -3.7000, 0.0000])
            cube([7.4000, 7.4000, 12.9000]);
        translate([-3.7000, -3.7000, 12.9000])
            cube([7.4000, 7.4000, 1]);
    }
    // Well B11
    translate([104.3800, 65.2400, 1.0000]) union() {
        translate([-3.7000, -3.7000, 0.0000])
            cube([7.4000, 7.4000, 12.9000]);
        translate([-3.7000, -3.7000, 12.9000])
            cube([7.4000, 7.4000, 1]);
    }
    // Well B12
    translate([113.3800, 65.2400, 1.0000]) union() {
        translate([-3.7000, -3.7000, 0.0000])
            cube([7.4000, 7.4000, 12.9000]);
        translate([-3.7000, -3.7000, 12.9000])
            cube([7.4000, 7.4000, 1]);
    }
    // Well C10
    translate([95.3800, 56.2400, 1.0000]) union() {
        translate([-3.7000, -3.7000, 0.0000])
            cube([7.4000, 7.4000, 12.9000]);
        translate([-3.7000, -3.7000, 12.9000])
            cube([7.4000, 7.4000, 1]);
    }
    // Well C11
    translate([104.3800, 56.2400, 1.0000]) union() {
        translate([-3.7000, -3.7000, 0.0000])
            cube([7.4000, 7.4000, 12.9000]);
        translate([-3.7000, -3.7000, 12.9000])
            cube([7.4000, 7.4000, 1]);
    }
    // Well C12
    translate([113.3800, 56.2400, 1.0000]) union() {
        translate([-3.7000, -3.7000, 0.0000])
            cube([7.4000, 7.4000, 12.9000]);
        translate([-3.7000, -3.7000, 12.9000])
            cube([7.4000, 7.4000, 1]);
    }
    // Well D10
    translate([95.3800, 47.2400, 1.0000]) union() {
        translate([-3.7000, -3.7000, 0.0000])
            cube([7.4000, 7.4000, 12.9000]);
        translate([-3.7000, -3.7000, 12.9000])
            cube([7.4000, 7.4000, 1]);
    }
    // Well D11
    translate([104.3800, 47.2400, 1.0000]) union() {
        translate([-3.7000, -3.7000, 0.0000])
            cube([7.4000, 7.4000, 12.9000]);
        translate([-3.7000, -3.7000, 12.9000])
            cube([7.4000, 7.4000, 1]);
    }
    // Well D12
    translate([113.3800, 47.2400, 1.0000]) union() {
        translate([-3.7000, -3.7000, 0.0000])
            cube([7.4000, 7.4000, 12.9000]);
        translate([-3.7000, -3.7000, 12.9000])
            cube([7.4000, 7.4000, 1]);
    }
    // Well E10
    translate([95.3800, 38.2400, 1.0000]) union() {
        translate([-3.7000, -3.7000, 0.0000])
            cube([7.4000, 7.4000, 12.9000]);
        translate([-3.7000, -3.7000, 12.9000])
            cube([7.4000, 7.4000, 1]);
    }
    // Well E11
    translate([104.3800, 38.2400, 1.0000]) union() {
        translate([-3.7000, -3.7000, 0.0000])
            cube([7.4000, 7.4000, 12.9000]);
        translate([-3.7000, -3.7000, 12.9000])
            cube([7.4000, 7.4000, 1]);
    }
    // Well E12
    translate([113.3800, 38.2400, 1.0000]) union() {
        translate([-3.7000, -3.7000, 0.0000])
            cube([7.4000, 7.4000, 12.9000]);
        translate([-3.7000, -3.7000, 12.9000])
            cube([7.4000, 7.4000, 1]);
    }
    // Well F10
    translate([95.3800, 29.2400, 1.0000]) union() {
        translate([-3.7000, -3.7000, 0.0000])
            cube([7.4000, 7.4000, 12.9000]);
        translate([-3.7000, -3.7000, 12.9000])
            cube([7.4000, 7.4000, 1]);
    }
    // Well F11
    translate([104.3800, 29.2400, 1.0000]) union() {
        translate([-3.7000, -3.7000, 0.0000])
            cube([7.4000, 7.4000, 12.9000]);
        translate([-3.7000, -3.7000, 12.9000])
            cube([7.4000, 7.4000, 1]);
    }
    // Well F12
    translate([113.3800, 29.2400, 1.0000]) union() {
        translate([-3.7000, -3.7000, 0.0000])
            cube([7.4000, 7.4000, 12.9000]);
        translate([-3.7000, -3.7000, 12.9000])
            cube([7.4000, 7.4000, 1]);
    }
    // Well G10
    translate([95.3800, 20.2400, 1.0000]) union() {
        translate([-3.7000, -3.7000, 0.0000])
            cube([7.4000, 7.4000, 12.9000]);
        translate([-3.7000, -3.7000, 12.9000])
            cube([7.4000, 7.4000, 1]);
    }
    // Well G11
    translate([104.3800, 20.2400, 1.0000]) union() {
        translate([-3.7000, -3.7000, 0.0000])
            cube([7.4000, 7.4000, 12.9000]);
        translate([-3.7000, -3.7000, 12.9000])
            cube([7.4000, 7.4000, 1]);
    }
    // Well G12
    translate([113.3800, 20.2400, 1.0000]) union() {
        translate([-3.7000, -3.7000, 0.0000])
            cube([7.4000, 7.4000, 12.9000]);
        translate([-3.7000, -3.7000, 12.9000])
            cube([7.4000, 7.4000, 1]);
    }
    // Well H10
    translate([95.3800, 11.2400, 1.0000]) union() {
        translate([-3.7000, -3.7000, 0.0000])
            cube([7.4000, 7.4000, 12.9000]);
        translate([-3.7000, -3.7000, 12.9000])
            cube([7.4000, 7.4000, 1]);
    }
    // Well H11
    translate([104.3800, 11.2400, 1.0000]) union() {
        translate([-3.7000, -3.7000, 0.0000])
            cube([7.4000, 7.4000, 12.9000]);
        translate([-3.7000, -3.7000, 12.9000])
            cube([7.4000, 7.4000, 1]);
    }
    // Well H12
    translate([113.3800, 11.2400, 1.0000]) union() {
        translate([-3.7000, -3.7000, 0.0000])
            cube([7.4000, 7.4000, 12.9000]);
        translate([-3.7000, -3.7000, 12.9000])
            cube([7.4000, 7.4000, 1]);
    }
}
